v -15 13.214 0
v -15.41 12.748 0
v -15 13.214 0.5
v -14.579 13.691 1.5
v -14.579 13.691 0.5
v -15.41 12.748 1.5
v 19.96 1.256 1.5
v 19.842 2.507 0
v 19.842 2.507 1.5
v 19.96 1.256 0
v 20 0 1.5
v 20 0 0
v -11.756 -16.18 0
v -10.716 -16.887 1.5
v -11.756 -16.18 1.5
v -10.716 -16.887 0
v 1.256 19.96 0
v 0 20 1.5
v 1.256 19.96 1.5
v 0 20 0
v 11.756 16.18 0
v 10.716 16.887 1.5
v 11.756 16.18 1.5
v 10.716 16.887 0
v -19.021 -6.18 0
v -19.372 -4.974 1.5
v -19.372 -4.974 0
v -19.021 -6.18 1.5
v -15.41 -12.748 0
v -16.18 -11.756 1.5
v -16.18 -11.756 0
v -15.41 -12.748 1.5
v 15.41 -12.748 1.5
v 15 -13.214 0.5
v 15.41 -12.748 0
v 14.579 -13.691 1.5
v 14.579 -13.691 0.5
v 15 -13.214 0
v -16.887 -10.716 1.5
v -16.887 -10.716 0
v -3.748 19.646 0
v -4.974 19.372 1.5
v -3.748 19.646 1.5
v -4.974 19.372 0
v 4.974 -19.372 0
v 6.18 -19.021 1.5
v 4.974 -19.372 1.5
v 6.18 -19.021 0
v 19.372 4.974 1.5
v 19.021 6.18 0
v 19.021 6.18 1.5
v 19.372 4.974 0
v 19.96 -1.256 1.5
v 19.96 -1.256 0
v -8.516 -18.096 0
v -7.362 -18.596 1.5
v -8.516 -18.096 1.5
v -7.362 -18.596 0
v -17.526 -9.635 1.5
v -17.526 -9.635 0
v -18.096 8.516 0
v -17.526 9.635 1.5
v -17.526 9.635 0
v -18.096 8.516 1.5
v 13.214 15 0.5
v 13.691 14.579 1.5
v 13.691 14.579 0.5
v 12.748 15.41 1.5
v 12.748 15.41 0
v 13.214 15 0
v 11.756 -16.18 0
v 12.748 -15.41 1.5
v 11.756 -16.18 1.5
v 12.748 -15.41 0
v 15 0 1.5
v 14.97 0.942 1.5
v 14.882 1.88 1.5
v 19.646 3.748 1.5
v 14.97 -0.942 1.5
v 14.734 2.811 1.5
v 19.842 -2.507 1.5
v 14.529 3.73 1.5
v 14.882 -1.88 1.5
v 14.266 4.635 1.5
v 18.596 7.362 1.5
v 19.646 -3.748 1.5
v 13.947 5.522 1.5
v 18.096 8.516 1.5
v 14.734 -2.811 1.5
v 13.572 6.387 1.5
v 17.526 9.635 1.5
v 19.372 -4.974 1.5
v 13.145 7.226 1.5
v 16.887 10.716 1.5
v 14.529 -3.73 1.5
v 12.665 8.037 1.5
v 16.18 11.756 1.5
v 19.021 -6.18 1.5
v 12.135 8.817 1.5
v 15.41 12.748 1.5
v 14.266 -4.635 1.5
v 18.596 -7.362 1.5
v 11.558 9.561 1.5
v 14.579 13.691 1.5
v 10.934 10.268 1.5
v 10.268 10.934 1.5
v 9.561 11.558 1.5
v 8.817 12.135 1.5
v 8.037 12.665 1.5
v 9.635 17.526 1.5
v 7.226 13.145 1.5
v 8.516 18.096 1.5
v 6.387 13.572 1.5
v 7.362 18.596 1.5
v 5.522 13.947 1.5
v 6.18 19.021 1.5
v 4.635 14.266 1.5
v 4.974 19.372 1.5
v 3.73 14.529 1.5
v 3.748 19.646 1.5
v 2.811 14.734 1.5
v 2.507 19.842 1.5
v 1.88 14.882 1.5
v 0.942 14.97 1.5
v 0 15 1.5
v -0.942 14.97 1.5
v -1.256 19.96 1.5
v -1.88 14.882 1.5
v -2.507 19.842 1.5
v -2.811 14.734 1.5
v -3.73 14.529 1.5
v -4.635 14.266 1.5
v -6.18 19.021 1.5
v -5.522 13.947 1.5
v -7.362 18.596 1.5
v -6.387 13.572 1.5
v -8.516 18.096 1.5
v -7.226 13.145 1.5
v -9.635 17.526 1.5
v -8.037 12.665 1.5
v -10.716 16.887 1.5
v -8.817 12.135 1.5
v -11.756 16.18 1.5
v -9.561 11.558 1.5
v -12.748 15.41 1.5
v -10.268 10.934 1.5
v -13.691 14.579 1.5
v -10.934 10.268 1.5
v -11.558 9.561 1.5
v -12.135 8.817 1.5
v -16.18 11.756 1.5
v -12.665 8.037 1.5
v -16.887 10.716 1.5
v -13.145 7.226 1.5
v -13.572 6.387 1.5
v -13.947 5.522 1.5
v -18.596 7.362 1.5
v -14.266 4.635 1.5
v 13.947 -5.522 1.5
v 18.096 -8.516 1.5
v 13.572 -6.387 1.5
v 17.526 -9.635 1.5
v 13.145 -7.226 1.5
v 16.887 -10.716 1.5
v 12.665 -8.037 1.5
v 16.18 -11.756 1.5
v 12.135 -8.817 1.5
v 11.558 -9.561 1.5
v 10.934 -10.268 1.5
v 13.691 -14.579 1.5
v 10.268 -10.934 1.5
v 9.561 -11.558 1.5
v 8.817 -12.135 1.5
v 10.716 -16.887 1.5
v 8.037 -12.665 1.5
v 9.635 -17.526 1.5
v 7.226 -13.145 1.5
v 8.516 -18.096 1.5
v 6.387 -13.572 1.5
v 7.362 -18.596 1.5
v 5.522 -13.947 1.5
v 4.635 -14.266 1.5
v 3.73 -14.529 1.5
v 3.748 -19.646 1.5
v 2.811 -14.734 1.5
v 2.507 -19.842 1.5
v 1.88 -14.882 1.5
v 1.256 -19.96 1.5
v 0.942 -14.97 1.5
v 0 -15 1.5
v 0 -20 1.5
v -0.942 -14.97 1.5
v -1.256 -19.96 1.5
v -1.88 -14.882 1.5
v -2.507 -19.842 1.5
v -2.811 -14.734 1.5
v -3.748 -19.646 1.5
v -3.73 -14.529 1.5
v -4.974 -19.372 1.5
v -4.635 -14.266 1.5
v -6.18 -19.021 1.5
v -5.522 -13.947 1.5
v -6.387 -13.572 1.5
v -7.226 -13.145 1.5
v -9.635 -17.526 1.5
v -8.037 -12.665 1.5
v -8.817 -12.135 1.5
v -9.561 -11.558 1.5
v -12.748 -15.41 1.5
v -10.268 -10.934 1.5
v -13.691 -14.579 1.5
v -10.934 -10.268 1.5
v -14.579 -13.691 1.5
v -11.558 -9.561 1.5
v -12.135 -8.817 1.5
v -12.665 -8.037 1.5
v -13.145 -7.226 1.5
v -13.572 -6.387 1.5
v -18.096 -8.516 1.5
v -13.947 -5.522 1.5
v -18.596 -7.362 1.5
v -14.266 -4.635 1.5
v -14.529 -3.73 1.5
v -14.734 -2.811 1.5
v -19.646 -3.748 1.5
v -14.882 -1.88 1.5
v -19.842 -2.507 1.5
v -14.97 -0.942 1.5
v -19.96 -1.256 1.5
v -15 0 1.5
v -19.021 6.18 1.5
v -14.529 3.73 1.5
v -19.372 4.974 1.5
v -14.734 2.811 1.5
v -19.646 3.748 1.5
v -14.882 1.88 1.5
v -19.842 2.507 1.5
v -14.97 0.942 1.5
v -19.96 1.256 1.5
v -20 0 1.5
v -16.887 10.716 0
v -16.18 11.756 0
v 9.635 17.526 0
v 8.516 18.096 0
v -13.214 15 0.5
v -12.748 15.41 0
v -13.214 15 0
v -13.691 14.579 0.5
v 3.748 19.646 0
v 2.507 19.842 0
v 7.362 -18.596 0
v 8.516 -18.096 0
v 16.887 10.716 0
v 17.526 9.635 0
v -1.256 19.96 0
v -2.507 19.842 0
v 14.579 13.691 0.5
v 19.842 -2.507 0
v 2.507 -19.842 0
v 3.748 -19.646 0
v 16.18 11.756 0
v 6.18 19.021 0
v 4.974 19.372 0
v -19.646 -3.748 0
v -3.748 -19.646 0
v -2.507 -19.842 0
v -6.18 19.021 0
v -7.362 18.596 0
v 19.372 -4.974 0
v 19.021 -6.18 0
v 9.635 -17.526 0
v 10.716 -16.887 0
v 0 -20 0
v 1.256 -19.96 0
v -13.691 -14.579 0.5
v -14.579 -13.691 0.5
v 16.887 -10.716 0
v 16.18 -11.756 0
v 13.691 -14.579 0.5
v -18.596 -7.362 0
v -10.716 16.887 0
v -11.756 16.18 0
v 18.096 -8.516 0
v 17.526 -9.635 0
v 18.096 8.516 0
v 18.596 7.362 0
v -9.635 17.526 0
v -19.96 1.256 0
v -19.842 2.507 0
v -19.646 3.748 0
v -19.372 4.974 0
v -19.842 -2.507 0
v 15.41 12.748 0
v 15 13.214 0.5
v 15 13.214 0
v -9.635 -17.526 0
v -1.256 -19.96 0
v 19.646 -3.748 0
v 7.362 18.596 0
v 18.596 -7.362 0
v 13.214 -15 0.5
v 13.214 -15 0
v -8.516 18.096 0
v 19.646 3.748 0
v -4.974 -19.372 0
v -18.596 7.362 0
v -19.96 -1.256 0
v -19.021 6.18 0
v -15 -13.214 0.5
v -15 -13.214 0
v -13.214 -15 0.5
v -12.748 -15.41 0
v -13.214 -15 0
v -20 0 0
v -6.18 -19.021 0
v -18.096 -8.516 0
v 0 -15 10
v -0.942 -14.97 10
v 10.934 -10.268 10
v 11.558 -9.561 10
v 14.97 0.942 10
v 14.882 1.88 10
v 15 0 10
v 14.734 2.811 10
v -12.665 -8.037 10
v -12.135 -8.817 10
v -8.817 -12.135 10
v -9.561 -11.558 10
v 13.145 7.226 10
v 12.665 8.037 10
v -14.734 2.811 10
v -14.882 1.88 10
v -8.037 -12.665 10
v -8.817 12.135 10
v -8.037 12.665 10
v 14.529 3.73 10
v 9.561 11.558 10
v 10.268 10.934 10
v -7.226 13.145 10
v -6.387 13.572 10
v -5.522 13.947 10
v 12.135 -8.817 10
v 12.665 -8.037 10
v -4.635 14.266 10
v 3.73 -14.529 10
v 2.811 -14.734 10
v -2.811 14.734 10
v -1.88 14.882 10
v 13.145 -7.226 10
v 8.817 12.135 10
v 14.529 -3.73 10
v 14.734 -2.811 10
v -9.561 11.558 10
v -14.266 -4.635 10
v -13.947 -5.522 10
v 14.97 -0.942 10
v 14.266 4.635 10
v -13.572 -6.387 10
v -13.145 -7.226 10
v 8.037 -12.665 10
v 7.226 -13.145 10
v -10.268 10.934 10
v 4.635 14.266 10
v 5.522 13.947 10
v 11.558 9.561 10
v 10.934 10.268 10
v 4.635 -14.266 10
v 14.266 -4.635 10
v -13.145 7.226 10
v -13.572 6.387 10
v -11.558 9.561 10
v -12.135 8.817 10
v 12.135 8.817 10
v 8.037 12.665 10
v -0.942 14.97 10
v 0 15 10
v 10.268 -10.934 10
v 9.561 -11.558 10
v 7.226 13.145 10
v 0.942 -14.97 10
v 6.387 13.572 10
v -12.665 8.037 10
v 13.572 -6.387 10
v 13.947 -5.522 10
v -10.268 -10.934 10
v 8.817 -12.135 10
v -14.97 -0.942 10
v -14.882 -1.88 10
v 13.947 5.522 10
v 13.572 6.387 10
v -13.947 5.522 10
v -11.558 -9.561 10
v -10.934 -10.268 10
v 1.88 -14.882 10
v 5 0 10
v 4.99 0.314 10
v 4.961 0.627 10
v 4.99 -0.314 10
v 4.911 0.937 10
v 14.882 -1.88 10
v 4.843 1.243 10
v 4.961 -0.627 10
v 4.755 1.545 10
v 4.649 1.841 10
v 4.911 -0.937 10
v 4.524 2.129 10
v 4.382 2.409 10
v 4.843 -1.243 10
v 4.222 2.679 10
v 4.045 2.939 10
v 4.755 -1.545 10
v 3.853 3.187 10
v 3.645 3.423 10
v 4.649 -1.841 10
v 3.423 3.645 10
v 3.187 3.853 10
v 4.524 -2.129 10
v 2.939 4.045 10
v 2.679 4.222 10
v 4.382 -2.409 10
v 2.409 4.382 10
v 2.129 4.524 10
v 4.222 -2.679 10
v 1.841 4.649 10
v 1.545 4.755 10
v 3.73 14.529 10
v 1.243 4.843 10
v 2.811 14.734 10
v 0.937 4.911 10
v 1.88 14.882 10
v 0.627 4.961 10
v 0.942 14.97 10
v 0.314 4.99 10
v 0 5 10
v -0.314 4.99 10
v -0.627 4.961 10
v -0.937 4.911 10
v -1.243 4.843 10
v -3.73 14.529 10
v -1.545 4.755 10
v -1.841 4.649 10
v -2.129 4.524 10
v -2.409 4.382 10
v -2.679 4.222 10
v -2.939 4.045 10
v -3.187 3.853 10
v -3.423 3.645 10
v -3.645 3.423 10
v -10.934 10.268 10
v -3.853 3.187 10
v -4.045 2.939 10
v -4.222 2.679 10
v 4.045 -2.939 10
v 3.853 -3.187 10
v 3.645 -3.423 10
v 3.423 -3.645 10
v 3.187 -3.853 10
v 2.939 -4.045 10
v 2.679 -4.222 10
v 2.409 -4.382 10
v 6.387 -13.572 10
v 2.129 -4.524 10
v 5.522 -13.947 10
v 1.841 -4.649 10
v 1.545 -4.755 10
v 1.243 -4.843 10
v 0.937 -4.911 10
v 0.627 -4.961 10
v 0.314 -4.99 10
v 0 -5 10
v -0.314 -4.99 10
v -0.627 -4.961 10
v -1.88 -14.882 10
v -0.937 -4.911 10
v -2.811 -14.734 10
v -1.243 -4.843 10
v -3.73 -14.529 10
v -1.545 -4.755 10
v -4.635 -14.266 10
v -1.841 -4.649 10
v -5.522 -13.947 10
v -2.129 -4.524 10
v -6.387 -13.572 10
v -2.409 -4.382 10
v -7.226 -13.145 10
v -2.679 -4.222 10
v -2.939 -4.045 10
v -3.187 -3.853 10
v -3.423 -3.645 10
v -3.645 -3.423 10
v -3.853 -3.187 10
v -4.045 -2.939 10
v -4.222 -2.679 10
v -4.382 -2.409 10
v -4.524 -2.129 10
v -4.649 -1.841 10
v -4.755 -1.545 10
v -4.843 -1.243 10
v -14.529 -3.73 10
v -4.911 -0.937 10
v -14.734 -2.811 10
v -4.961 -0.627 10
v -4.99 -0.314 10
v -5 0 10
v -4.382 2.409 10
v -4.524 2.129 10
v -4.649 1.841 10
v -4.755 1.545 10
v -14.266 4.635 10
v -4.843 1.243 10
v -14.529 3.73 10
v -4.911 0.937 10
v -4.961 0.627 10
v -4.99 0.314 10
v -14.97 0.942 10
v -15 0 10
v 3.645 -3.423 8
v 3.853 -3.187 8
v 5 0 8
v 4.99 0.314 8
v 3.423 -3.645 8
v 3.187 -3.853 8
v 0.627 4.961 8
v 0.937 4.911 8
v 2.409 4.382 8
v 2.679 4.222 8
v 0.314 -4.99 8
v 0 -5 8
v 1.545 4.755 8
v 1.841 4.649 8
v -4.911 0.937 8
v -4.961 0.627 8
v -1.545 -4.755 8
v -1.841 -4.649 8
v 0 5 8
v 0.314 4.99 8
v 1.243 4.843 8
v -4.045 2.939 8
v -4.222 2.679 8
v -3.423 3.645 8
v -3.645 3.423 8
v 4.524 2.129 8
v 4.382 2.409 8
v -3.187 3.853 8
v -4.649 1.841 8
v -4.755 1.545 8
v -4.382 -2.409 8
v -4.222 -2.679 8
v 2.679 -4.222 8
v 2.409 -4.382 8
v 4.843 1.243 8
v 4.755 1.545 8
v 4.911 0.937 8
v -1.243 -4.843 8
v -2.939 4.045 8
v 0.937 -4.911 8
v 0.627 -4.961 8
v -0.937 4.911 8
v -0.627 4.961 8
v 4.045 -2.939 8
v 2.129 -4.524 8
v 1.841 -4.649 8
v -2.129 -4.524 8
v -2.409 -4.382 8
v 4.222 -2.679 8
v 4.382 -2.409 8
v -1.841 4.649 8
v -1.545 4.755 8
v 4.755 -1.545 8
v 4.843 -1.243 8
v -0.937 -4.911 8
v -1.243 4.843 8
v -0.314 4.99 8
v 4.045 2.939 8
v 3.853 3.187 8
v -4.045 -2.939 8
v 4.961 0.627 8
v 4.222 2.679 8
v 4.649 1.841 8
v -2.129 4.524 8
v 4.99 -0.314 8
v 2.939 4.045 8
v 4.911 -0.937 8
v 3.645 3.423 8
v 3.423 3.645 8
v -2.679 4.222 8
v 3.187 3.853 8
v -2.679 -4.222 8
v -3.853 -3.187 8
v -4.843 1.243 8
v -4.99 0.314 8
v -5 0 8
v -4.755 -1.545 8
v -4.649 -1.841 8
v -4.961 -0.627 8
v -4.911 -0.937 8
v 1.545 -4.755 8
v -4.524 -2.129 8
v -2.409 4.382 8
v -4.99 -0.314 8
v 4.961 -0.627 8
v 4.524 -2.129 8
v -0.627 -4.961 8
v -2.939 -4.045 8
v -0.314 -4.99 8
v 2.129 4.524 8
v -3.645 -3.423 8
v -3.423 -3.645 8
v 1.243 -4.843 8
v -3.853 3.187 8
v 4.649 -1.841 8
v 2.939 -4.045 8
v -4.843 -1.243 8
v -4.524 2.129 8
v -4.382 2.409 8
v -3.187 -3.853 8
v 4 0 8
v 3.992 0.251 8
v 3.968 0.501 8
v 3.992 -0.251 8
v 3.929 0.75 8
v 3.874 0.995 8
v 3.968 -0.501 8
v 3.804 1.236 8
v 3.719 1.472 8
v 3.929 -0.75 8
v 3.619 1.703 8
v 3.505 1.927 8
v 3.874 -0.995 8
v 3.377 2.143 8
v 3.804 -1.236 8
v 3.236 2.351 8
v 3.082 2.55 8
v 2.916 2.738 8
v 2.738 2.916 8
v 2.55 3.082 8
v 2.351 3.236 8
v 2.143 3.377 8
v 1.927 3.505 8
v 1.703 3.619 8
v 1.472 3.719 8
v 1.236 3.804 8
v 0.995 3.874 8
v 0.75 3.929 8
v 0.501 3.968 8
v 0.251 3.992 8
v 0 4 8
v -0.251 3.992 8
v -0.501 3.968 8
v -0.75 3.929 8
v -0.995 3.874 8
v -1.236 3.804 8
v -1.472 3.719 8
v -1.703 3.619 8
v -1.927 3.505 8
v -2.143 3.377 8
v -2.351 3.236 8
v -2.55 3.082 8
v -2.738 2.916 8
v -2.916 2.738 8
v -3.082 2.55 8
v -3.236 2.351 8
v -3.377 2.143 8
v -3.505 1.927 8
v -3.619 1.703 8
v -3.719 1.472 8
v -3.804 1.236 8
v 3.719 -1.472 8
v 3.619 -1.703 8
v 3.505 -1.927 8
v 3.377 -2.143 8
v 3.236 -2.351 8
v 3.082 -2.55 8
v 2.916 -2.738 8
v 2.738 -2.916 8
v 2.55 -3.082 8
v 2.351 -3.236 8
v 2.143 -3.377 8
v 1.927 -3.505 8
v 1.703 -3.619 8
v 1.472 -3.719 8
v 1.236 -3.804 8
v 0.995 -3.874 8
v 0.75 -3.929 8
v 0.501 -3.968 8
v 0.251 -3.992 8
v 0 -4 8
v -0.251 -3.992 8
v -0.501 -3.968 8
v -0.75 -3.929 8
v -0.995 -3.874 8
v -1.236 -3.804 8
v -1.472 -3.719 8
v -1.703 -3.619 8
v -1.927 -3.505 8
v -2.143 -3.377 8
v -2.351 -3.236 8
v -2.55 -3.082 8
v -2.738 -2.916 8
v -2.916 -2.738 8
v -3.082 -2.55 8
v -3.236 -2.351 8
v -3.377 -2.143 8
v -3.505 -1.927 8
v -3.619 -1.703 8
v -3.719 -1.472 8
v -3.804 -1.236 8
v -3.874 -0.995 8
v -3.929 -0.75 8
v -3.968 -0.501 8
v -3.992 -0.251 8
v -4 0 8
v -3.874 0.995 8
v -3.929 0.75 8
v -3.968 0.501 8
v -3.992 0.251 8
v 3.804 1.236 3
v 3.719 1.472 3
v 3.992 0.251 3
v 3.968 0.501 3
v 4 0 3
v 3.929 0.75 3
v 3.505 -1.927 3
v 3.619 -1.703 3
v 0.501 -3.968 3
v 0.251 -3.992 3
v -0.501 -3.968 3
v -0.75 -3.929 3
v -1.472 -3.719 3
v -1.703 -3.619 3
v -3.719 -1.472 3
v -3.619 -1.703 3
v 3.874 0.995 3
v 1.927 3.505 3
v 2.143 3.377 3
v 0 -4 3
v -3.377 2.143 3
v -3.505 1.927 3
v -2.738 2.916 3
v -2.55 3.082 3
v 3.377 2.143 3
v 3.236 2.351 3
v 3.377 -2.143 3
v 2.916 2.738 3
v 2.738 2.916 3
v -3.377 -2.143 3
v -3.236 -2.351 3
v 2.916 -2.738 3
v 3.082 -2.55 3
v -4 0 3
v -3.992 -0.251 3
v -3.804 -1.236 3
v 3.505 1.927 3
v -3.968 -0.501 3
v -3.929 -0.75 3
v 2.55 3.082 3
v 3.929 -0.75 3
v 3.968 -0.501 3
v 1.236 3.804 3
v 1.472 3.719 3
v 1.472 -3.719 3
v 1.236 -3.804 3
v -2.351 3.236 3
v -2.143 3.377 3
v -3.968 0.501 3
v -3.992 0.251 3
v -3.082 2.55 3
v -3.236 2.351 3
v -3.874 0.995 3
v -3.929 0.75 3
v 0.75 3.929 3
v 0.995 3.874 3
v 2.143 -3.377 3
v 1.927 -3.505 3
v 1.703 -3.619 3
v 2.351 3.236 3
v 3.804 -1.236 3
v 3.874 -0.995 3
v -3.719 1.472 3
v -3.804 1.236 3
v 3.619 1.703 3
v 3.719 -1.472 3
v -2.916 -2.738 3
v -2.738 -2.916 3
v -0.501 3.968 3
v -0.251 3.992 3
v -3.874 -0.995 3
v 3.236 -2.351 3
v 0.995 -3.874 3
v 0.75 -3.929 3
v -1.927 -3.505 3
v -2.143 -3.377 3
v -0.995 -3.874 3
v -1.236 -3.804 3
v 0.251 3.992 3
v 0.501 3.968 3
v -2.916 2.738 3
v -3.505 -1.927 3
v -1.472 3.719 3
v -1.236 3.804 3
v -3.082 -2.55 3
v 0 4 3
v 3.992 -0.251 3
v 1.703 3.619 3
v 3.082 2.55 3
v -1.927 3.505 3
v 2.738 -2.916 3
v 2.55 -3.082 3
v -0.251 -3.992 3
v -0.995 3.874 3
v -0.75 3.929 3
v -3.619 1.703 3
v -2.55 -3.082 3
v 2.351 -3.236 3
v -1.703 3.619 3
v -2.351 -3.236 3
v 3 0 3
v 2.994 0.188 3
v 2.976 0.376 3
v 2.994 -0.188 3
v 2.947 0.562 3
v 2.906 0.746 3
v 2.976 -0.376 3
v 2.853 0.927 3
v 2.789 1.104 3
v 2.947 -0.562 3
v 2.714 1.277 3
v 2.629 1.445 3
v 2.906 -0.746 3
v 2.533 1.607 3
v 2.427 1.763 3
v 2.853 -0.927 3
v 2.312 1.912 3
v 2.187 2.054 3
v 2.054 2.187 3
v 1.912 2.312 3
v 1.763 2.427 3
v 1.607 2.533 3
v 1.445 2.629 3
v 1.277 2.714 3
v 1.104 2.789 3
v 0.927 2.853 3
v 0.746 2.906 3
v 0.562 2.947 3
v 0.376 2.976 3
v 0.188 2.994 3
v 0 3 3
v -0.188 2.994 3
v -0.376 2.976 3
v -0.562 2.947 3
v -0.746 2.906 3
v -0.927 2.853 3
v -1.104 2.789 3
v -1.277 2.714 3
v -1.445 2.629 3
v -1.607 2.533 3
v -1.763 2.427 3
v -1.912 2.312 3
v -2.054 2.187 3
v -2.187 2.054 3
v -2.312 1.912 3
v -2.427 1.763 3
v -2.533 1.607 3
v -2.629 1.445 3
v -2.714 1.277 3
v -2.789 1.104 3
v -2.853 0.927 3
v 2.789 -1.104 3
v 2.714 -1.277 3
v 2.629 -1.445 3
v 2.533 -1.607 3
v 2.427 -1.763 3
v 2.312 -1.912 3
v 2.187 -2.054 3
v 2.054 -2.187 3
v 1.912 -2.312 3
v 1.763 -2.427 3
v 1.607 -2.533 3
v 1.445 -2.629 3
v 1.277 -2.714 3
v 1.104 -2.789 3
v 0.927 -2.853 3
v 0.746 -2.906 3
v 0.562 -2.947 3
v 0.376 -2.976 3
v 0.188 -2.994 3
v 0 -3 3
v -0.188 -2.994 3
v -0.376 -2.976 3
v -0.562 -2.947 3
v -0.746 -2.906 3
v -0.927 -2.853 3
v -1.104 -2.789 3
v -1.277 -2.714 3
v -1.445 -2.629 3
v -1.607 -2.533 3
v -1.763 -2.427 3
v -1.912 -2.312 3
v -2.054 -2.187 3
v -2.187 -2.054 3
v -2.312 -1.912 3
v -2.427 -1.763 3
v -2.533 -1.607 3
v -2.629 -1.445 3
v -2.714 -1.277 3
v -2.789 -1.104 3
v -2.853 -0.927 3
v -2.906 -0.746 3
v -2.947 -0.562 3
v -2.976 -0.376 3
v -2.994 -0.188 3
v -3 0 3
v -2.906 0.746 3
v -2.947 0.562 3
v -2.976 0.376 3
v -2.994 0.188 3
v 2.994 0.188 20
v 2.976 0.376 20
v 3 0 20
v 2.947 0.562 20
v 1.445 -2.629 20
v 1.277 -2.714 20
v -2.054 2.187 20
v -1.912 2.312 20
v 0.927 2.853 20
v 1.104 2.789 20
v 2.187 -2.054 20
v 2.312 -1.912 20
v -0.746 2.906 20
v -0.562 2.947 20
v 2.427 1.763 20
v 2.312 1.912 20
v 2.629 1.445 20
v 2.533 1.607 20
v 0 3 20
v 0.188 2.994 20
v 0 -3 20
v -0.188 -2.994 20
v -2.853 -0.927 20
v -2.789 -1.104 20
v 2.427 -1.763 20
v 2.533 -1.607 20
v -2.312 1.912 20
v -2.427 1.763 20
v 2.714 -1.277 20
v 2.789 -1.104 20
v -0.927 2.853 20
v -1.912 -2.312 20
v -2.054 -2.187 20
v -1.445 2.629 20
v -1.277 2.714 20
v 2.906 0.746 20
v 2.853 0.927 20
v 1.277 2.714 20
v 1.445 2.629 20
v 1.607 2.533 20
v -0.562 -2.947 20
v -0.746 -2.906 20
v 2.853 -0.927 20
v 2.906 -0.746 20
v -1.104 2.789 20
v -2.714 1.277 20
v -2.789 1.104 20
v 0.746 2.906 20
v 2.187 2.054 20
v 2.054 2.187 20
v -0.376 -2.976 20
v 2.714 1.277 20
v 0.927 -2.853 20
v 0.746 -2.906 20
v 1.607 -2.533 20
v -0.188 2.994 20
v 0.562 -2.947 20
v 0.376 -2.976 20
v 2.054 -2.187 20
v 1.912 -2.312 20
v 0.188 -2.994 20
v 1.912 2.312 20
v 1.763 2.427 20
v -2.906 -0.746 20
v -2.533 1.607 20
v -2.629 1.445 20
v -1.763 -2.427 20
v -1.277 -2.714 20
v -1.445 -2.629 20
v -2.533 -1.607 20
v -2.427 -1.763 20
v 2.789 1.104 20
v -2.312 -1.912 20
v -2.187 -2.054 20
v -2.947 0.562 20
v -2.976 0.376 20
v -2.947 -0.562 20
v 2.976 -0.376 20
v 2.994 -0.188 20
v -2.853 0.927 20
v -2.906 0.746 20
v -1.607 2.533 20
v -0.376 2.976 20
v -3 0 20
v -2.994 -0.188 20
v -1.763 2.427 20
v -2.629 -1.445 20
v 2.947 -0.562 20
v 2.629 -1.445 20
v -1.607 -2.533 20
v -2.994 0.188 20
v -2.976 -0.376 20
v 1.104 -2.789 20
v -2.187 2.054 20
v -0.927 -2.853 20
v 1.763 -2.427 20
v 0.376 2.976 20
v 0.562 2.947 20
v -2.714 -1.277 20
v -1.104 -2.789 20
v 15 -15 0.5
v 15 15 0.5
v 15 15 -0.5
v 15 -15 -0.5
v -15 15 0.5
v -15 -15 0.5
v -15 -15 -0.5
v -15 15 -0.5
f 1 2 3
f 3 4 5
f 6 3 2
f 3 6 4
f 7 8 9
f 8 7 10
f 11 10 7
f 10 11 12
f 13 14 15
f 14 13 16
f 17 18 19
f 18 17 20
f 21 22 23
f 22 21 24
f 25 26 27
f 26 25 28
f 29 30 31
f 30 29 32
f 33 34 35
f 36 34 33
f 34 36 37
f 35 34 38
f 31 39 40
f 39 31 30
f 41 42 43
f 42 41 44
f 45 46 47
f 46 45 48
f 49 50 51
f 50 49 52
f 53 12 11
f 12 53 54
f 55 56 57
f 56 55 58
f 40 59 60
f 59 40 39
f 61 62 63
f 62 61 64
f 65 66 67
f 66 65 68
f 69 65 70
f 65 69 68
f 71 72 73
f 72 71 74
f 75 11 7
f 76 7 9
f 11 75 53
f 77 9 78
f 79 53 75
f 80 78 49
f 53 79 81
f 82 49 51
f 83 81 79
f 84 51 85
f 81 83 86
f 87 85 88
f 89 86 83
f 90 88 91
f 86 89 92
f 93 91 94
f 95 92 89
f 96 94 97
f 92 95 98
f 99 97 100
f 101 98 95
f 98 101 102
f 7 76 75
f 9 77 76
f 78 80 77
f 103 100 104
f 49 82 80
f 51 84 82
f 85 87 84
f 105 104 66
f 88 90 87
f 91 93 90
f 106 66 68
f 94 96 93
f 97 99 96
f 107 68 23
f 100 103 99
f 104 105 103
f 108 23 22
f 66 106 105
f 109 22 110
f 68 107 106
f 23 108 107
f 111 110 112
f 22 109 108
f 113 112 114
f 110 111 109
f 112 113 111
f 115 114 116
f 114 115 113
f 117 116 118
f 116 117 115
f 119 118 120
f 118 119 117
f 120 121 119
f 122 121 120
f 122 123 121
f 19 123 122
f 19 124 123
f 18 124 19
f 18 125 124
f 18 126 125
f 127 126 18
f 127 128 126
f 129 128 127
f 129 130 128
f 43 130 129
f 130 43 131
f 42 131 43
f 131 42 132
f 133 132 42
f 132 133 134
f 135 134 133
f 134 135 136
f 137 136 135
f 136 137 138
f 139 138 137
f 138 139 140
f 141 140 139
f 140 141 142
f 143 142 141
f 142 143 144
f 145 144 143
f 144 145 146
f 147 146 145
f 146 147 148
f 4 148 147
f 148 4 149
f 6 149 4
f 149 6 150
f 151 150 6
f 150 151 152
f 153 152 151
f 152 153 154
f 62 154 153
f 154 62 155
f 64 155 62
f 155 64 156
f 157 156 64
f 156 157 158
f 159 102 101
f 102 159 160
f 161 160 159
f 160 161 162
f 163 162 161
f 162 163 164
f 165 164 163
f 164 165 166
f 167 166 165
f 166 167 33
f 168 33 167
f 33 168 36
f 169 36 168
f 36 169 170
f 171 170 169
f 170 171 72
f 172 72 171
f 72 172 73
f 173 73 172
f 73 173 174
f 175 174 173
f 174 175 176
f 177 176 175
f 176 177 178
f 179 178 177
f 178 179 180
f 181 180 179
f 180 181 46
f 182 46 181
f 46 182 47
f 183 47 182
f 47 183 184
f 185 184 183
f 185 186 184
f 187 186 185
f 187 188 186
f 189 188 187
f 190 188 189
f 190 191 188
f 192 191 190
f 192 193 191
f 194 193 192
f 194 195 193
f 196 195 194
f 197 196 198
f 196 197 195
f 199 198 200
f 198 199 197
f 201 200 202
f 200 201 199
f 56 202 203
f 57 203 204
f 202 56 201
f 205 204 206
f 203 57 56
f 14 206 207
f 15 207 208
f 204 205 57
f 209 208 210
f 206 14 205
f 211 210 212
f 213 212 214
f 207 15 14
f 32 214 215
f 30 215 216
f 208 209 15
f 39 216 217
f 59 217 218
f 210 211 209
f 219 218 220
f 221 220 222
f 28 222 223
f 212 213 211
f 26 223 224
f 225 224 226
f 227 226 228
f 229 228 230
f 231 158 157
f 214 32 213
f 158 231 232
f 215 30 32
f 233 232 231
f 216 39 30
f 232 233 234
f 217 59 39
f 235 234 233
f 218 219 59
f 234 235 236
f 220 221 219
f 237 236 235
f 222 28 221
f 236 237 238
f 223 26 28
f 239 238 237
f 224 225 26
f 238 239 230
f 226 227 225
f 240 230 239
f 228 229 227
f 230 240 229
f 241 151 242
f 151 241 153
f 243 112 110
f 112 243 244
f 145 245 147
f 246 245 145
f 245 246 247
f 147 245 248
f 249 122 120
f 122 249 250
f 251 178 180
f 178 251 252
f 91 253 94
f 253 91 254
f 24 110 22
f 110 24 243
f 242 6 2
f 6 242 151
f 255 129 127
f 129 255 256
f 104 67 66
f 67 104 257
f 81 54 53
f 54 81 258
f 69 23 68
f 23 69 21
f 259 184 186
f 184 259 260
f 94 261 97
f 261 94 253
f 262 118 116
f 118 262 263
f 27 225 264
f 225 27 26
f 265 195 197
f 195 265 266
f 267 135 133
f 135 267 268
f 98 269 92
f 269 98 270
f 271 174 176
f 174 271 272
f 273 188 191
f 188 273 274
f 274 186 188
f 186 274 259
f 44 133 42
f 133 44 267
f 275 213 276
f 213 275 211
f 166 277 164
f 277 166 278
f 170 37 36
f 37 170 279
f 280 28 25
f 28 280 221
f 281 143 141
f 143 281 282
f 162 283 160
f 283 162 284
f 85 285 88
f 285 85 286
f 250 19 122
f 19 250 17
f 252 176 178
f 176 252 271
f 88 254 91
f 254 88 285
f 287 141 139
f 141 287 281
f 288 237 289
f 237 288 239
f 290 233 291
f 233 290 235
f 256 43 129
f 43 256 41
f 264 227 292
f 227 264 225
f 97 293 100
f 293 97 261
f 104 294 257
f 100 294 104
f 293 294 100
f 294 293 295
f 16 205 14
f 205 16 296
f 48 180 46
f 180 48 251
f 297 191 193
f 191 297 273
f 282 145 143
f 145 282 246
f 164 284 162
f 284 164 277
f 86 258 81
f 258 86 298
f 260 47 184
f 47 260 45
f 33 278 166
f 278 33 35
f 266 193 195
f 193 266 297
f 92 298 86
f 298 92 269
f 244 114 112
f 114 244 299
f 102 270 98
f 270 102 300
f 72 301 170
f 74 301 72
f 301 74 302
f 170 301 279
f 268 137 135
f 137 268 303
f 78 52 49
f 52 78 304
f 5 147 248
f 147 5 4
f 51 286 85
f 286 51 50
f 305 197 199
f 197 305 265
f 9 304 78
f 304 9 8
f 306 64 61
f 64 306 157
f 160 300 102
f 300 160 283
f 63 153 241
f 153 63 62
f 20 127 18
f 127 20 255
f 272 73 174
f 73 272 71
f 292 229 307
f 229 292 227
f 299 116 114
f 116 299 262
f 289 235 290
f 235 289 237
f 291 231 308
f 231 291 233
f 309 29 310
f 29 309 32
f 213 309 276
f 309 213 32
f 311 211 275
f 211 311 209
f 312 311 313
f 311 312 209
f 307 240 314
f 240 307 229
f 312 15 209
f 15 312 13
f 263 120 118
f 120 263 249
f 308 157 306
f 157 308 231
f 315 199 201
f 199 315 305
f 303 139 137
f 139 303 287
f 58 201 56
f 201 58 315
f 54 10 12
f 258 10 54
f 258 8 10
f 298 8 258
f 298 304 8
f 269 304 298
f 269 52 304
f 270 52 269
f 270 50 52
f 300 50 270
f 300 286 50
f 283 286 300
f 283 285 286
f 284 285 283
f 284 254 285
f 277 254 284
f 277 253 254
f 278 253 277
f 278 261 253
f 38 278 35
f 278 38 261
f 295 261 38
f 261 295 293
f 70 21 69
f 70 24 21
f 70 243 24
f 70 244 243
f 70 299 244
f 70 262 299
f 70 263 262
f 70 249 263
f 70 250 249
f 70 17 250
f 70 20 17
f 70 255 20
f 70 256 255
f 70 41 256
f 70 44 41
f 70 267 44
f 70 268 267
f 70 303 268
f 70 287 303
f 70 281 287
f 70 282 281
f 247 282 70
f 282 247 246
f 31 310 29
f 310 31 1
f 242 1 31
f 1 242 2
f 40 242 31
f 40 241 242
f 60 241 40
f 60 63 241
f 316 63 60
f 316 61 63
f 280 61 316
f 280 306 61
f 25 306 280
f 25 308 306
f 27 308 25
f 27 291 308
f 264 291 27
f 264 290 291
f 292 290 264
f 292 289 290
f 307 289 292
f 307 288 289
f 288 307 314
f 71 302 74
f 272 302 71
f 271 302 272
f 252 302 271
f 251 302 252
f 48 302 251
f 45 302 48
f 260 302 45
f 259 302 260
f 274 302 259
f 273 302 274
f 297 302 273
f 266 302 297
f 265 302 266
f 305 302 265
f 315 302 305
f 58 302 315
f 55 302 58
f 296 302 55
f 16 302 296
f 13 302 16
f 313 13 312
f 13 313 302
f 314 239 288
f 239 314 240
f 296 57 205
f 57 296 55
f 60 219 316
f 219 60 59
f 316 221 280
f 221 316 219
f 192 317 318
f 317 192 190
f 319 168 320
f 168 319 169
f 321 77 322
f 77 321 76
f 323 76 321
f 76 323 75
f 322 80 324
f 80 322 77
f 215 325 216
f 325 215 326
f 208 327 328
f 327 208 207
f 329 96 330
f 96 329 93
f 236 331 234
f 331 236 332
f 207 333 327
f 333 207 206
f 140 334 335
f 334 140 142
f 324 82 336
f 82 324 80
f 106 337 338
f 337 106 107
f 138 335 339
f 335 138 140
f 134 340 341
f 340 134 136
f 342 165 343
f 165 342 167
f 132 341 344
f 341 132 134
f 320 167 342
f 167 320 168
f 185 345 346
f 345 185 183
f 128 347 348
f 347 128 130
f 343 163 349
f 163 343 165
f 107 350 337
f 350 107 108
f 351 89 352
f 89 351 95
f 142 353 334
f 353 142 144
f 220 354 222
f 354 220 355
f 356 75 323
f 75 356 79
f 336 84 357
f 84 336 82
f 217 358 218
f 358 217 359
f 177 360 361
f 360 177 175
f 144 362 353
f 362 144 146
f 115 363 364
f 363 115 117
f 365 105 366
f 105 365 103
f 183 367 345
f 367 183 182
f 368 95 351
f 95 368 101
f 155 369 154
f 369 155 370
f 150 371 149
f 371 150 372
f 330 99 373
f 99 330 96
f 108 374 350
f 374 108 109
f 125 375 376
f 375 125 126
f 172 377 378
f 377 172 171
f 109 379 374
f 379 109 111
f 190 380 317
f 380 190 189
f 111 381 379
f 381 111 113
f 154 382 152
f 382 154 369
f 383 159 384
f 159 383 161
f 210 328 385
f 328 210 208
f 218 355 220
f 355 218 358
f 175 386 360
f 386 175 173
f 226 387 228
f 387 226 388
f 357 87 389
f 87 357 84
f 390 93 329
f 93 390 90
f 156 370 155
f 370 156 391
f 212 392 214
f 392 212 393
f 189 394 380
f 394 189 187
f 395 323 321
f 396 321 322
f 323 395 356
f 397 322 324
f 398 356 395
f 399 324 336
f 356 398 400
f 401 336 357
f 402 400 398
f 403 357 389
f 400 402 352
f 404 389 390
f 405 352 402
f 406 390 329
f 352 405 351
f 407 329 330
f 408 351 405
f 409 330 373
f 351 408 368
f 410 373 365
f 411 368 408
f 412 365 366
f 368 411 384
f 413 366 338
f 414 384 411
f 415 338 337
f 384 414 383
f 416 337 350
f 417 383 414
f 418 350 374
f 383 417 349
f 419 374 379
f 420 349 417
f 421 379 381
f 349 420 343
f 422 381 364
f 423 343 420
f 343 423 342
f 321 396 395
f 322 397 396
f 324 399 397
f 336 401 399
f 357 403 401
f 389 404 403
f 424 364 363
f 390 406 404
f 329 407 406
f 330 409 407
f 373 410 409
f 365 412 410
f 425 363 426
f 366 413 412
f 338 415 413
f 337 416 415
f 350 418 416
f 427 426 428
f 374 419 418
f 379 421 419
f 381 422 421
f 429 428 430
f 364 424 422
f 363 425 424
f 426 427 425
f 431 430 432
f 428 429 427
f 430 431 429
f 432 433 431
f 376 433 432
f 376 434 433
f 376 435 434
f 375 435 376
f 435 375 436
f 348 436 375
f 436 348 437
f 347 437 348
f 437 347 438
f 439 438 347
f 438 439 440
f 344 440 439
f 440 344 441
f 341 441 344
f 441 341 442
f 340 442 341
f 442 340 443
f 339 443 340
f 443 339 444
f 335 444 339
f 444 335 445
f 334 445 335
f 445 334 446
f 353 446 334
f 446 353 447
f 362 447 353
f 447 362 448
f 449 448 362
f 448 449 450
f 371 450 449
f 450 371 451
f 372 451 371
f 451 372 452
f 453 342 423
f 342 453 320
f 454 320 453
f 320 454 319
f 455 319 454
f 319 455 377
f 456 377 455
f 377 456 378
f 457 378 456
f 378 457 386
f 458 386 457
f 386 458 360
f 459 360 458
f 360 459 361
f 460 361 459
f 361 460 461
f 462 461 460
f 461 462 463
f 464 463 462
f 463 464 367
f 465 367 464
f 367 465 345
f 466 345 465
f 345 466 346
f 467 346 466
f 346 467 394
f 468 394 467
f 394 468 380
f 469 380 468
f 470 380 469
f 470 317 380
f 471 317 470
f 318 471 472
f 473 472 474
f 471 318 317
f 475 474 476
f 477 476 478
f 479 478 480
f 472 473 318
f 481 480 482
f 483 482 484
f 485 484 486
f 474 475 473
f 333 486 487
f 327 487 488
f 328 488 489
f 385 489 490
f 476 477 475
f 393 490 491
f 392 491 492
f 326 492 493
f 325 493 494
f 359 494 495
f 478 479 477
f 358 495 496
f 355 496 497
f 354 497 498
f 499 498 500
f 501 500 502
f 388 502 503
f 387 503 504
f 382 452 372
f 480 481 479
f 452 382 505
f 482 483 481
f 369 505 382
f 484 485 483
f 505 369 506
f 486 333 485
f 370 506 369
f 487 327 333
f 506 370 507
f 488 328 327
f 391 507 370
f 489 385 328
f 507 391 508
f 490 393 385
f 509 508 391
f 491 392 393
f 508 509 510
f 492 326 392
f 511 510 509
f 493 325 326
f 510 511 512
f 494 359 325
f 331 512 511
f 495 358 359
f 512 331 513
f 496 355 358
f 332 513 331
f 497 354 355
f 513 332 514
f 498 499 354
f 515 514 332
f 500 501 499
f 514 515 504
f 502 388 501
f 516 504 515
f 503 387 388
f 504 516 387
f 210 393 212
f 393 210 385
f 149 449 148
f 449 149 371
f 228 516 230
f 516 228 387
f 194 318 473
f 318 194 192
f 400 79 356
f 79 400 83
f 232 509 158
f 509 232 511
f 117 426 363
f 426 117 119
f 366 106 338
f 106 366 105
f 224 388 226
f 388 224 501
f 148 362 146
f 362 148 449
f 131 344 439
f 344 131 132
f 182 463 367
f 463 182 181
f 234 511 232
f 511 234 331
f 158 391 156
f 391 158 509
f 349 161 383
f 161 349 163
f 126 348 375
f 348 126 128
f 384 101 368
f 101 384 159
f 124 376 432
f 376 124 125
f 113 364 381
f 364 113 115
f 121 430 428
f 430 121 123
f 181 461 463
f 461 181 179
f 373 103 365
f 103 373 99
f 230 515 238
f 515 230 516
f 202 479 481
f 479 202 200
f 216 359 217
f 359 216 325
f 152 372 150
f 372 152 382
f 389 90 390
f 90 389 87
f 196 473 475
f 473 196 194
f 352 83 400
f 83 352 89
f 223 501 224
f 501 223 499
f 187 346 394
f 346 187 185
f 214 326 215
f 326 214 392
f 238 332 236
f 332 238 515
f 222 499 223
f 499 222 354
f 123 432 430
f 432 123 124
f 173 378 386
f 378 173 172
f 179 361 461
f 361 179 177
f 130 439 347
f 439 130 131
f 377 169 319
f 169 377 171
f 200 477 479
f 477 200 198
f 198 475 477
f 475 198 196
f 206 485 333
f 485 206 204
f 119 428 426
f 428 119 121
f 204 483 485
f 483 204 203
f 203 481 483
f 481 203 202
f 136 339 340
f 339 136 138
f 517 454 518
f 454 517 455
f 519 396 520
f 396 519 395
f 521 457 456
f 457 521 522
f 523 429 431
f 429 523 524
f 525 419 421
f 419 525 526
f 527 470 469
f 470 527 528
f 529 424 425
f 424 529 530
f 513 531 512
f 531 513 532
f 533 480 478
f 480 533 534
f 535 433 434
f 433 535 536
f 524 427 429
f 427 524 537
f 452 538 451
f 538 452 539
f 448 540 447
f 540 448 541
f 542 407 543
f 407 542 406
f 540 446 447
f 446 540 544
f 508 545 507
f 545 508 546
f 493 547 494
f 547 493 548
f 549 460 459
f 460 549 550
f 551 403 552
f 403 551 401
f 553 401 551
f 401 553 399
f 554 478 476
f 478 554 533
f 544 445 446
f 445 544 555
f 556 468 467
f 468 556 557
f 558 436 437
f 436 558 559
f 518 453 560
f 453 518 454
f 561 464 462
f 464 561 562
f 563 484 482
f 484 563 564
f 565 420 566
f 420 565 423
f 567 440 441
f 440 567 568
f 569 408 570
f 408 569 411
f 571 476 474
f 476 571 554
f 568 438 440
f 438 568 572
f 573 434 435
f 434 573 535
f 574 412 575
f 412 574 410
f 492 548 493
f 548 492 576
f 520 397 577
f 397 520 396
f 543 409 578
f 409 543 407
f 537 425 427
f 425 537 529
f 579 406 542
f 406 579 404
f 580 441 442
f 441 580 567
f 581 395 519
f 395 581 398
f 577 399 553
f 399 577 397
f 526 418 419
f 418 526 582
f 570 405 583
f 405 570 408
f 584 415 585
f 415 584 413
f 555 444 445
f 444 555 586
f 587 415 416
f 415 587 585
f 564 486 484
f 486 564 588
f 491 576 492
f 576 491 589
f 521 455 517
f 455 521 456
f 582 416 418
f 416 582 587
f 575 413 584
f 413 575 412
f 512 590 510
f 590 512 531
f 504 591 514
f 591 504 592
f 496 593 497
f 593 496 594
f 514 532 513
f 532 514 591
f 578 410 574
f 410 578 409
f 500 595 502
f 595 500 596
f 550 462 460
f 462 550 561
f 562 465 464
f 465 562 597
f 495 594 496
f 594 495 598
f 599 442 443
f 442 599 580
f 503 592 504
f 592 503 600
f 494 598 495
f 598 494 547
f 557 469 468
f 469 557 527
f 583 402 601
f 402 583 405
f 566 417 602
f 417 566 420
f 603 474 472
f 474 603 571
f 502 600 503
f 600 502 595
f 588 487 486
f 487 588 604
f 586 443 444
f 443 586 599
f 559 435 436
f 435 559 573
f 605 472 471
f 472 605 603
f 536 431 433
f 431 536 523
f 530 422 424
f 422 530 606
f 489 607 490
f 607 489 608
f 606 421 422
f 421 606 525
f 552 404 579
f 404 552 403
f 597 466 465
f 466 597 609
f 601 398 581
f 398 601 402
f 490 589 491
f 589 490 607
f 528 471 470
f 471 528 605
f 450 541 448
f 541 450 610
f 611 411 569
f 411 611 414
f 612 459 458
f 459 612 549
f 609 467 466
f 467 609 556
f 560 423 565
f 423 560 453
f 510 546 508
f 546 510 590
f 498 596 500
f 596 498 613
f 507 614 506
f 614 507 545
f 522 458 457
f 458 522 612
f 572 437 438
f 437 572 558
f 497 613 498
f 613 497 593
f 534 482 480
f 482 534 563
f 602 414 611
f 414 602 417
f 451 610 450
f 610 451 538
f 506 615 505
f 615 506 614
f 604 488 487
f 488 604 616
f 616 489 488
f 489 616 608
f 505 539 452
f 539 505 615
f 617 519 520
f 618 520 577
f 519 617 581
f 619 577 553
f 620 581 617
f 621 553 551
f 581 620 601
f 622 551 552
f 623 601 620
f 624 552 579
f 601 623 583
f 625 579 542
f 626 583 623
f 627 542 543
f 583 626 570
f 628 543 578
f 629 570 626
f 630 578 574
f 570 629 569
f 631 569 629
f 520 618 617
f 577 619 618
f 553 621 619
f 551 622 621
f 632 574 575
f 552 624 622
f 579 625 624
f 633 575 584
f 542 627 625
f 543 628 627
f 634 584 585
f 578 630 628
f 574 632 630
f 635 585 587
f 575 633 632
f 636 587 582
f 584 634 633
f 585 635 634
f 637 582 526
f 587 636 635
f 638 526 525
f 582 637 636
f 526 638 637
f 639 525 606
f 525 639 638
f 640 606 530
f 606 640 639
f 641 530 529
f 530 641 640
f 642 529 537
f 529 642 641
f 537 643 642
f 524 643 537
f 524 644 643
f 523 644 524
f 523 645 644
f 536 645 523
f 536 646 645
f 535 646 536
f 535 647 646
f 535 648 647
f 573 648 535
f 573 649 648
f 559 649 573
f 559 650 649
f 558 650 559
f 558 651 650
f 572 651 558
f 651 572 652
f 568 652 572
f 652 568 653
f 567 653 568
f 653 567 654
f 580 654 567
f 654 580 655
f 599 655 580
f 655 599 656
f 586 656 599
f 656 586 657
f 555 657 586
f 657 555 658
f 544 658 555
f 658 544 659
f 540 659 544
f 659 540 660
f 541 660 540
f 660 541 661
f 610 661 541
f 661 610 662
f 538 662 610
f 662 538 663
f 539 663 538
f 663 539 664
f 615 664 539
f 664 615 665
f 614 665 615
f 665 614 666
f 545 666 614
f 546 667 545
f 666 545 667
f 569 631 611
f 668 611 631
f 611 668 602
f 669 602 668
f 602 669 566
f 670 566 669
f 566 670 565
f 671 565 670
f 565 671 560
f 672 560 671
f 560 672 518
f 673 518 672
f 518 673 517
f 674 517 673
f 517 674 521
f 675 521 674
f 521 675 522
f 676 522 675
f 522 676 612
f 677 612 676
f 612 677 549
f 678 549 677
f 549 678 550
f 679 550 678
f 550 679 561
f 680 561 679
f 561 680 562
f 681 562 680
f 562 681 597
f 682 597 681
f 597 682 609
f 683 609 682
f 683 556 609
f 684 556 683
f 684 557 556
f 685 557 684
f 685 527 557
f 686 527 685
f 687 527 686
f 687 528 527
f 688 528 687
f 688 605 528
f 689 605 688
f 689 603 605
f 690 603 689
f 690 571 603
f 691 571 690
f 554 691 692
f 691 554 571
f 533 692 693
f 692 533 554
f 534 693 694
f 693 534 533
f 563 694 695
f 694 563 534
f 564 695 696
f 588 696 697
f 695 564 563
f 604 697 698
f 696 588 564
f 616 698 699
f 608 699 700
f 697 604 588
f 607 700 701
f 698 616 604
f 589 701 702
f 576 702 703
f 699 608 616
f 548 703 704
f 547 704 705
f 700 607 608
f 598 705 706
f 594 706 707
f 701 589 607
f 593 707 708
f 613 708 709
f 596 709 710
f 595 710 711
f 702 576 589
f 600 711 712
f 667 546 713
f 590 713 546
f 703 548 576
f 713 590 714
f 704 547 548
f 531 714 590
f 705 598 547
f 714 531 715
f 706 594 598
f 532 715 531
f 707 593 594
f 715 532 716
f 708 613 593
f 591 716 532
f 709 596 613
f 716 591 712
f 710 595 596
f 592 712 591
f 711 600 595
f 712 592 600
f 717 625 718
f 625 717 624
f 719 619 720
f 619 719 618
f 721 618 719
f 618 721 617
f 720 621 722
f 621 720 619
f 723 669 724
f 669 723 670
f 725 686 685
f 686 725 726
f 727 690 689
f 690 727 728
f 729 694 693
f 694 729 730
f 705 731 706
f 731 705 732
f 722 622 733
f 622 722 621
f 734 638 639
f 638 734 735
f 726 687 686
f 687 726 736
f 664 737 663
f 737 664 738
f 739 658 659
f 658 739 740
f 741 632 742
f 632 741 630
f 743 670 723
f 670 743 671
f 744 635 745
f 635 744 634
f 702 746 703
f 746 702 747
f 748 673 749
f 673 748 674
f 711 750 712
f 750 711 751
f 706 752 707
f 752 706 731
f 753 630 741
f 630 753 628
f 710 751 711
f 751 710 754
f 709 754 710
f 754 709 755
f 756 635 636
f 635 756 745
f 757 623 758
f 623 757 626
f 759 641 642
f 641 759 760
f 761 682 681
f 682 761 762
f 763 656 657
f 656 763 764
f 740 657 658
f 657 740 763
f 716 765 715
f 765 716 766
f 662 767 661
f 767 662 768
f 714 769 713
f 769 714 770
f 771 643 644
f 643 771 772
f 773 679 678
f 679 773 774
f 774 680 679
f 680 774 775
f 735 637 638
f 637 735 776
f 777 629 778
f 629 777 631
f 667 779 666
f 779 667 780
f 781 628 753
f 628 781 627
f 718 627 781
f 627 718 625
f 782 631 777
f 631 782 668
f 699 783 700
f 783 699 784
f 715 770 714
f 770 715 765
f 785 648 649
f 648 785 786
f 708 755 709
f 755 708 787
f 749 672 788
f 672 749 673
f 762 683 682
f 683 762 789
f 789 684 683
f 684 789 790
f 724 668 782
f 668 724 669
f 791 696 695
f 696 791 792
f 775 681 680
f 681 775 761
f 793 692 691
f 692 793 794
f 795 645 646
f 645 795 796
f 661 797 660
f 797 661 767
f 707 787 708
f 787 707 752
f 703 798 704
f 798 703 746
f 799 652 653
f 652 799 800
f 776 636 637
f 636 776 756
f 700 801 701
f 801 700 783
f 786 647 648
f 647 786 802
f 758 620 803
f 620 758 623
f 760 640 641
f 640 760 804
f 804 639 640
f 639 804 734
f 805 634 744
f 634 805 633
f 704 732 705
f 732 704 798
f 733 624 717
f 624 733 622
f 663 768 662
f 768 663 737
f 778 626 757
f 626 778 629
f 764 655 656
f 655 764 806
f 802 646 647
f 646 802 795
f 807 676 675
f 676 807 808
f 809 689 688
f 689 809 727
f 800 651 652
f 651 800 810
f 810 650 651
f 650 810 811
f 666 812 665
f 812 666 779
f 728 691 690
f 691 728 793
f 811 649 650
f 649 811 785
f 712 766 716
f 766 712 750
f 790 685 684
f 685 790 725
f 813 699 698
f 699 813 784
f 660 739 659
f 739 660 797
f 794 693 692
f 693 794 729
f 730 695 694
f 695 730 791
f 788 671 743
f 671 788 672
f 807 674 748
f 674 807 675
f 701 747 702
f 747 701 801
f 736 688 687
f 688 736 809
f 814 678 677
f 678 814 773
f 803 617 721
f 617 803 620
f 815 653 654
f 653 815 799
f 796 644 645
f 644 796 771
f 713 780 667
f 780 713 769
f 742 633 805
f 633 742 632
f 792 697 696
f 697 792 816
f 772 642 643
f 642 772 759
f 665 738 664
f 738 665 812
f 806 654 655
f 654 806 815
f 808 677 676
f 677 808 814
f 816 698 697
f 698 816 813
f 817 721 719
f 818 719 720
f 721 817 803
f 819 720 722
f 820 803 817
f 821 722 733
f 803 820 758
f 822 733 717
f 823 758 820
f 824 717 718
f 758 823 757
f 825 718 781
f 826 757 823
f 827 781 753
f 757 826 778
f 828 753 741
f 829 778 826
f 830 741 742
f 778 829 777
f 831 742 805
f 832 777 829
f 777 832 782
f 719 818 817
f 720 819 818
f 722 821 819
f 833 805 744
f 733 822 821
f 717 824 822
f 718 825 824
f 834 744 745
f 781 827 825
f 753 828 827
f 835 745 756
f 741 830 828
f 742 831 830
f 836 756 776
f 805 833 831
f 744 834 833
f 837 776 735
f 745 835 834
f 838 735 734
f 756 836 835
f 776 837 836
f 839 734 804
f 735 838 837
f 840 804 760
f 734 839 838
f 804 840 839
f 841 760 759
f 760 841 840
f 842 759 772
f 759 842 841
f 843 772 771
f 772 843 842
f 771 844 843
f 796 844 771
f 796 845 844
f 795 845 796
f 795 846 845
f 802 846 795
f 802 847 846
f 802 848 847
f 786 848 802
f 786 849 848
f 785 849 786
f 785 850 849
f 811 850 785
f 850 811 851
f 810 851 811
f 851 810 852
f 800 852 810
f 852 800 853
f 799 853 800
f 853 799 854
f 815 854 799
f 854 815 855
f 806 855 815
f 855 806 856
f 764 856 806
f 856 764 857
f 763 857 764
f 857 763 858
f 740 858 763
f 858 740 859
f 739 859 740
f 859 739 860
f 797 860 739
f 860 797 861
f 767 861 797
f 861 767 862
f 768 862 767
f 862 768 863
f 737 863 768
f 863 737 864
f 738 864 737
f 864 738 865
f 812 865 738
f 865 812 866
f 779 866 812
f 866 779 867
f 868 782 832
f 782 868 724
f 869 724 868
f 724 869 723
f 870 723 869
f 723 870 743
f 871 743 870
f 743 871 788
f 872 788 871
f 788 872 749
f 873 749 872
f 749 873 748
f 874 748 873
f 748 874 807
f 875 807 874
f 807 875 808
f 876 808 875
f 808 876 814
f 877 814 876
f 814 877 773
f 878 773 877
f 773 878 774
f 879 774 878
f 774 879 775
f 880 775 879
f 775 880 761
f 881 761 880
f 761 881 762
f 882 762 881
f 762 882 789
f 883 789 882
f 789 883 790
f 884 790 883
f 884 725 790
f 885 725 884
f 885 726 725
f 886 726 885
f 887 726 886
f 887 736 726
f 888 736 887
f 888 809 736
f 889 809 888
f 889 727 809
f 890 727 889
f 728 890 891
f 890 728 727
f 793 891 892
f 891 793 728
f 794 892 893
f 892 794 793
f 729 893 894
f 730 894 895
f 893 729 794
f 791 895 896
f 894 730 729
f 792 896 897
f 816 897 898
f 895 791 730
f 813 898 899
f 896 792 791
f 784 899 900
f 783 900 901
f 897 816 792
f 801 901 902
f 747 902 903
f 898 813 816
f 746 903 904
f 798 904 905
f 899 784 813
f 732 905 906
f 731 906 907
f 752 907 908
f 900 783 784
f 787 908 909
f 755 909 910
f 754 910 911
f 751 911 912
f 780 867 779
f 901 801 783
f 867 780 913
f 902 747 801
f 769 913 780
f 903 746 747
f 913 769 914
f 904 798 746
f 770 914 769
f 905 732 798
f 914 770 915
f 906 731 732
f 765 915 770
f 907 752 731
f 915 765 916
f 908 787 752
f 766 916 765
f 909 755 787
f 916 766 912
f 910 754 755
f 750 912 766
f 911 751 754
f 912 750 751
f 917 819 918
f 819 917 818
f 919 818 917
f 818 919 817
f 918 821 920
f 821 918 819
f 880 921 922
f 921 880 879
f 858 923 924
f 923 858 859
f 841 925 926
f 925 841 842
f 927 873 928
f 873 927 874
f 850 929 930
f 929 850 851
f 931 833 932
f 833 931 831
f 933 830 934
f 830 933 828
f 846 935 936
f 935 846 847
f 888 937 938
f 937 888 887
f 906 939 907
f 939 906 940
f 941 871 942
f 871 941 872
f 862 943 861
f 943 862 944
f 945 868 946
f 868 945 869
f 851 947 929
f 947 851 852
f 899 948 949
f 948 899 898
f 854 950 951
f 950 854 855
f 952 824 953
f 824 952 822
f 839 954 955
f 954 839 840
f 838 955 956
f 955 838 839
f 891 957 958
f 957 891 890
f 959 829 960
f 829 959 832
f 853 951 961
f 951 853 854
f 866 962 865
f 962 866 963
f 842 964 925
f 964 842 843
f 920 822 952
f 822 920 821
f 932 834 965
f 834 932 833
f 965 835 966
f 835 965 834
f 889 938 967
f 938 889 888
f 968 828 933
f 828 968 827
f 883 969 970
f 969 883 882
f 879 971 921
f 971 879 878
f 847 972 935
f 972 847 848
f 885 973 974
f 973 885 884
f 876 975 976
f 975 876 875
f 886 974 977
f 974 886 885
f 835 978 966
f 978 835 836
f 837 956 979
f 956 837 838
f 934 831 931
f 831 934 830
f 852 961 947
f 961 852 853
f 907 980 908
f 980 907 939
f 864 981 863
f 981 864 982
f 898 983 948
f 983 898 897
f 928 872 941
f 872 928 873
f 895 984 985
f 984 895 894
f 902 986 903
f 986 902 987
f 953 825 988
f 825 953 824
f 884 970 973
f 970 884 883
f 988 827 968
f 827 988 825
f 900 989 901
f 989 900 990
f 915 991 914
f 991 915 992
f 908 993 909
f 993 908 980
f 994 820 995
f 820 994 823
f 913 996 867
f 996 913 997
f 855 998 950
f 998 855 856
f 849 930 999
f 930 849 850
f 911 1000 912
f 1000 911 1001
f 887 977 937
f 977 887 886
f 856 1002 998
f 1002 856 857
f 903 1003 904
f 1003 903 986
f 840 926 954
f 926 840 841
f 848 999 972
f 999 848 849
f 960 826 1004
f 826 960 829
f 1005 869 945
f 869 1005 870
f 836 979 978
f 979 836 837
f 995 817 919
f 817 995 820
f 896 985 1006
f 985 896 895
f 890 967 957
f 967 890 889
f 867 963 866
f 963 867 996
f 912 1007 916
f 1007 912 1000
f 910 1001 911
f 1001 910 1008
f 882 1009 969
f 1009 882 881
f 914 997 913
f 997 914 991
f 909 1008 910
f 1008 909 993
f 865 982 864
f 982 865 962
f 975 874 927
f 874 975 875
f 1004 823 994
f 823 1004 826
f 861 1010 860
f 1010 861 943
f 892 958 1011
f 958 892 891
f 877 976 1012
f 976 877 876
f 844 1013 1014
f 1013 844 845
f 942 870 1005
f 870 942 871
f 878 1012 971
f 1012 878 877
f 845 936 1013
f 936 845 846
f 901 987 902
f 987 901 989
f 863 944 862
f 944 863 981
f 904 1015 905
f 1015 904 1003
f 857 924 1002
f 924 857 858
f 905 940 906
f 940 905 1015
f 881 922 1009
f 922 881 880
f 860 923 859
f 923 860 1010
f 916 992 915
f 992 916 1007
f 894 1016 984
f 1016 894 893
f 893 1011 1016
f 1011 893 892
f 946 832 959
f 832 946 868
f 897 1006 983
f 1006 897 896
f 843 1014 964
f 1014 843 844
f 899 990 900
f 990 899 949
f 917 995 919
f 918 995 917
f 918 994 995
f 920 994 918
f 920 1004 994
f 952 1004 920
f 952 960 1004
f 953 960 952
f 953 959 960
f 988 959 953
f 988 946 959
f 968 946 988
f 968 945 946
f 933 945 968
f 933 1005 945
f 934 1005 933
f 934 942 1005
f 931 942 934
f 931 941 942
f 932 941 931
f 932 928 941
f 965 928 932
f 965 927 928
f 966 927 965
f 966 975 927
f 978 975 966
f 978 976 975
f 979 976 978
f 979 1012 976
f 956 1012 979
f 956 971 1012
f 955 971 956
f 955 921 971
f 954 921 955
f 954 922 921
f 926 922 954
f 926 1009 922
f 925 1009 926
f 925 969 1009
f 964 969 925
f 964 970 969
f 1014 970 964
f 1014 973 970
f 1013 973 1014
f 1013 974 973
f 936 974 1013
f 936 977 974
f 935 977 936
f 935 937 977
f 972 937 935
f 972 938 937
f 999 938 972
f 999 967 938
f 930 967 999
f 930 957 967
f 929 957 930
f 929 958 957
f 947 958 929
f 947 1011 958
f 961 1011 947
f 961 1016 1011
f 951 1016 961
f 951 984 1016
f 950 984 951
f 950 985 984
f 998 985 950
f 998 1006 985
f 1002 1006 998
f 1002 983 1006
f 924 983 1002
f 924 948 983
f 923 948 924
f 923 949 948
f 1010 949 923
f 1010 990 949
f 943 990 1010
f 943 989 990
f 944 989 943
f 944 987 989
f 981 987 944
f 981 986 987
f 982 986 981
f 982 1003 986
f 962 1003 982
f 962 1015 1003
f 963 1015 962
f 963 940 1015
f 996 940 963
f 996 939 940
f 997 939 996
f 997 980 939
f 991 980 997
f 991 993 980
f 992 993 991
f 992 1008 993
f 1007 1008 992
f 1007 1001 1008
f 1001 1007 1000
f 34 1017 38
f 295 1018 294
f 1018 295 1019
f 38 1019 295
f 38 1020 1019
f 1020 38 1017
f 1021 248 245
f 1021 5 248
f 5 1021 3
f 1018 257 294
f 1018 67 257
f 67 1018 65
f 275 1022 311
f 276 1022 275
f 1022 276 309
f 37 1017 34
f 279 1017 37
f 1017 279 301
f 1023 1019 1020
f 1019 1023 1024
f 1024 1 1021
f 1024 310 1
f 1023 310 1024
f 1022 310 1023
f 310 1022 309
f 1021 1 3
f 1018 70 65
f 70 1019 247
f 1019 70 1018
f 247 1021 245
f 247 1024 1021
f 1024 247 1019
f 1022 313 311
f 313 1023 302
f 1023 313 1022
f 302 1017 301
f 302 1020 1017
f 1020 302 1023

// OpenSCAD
// Spacer Ring Component
module spacer_ring() {
    difference() {
        // Outer cylinder
        cylinder(h = 1.5, r = 20, $fn = 100); // Reduced height to match original model's flatness
        // Inner hollow
        cylinder(h = 1.6, r = 10, $fn = 100); // Adjusted height to ensure proper hollowing
    }
}

// Render the spacer ring
spacer_ring();

// Flange Plate Component
module flange_plate() {
    cube([30, 30, 1], center = true); // Reduced thickness to match original model's flatness
}

// Render the flange plate
flange_plate();

// Central Craft Component
module central_craft() {
    difference() {
        // Outer cylinder
        cylinder(h = 10, r = 15, $fn = 100);
        // Inner hollow
        cylinder(h = 10.1, r = 5, $fn = 100);
    }
}

// Render the central craft
central_craft();

// Input Craft Component
module input_craft() {
    difference() {
        // Outer cylinder
        cylinder(h = 8, r = 12, $fn = 100);
        // Inner hollow
        cylinder(h = 8.1, r = 4, $fn = 100);
    }
}

// Render the input craft
input_craft();

// Output Craft Component
module output_craft() {
    difference() {
        // Outer cylinder
        cylinder(h = 8, r = 12, $fn = 100);
        // Inner hollow
        cylinder(h = 8.1, r = 4, $fn = 100);
    }
}

// Render the output craft
output_craft();

// Nut Component
module nut() {
    difference() {
        // Hexagonal outer shape
        rotate([0, 0, 30]) {
            linear_extrude(height = 3) {
                polygon(points = [[-5, -8], [5, -8], [8, -5], [8, 5], [5, 8], [-5, 8], [-8, 5], [-8, -5]]);
            }
        }
        // Threaded interior
        cylinder(h = 3.1, r = 3, $fn = 100);
    }
}

// Render the nut
nut();

// Bolt Component
module bolt() {
    union() {
        // Cylindrical body
        cylinder(h = 20, r = 3, $fn = 100);
        // Flat head
        cylinder(h = 2, r = 5, $fn = 100);
    }
}

// Render the bolt
bolt();
